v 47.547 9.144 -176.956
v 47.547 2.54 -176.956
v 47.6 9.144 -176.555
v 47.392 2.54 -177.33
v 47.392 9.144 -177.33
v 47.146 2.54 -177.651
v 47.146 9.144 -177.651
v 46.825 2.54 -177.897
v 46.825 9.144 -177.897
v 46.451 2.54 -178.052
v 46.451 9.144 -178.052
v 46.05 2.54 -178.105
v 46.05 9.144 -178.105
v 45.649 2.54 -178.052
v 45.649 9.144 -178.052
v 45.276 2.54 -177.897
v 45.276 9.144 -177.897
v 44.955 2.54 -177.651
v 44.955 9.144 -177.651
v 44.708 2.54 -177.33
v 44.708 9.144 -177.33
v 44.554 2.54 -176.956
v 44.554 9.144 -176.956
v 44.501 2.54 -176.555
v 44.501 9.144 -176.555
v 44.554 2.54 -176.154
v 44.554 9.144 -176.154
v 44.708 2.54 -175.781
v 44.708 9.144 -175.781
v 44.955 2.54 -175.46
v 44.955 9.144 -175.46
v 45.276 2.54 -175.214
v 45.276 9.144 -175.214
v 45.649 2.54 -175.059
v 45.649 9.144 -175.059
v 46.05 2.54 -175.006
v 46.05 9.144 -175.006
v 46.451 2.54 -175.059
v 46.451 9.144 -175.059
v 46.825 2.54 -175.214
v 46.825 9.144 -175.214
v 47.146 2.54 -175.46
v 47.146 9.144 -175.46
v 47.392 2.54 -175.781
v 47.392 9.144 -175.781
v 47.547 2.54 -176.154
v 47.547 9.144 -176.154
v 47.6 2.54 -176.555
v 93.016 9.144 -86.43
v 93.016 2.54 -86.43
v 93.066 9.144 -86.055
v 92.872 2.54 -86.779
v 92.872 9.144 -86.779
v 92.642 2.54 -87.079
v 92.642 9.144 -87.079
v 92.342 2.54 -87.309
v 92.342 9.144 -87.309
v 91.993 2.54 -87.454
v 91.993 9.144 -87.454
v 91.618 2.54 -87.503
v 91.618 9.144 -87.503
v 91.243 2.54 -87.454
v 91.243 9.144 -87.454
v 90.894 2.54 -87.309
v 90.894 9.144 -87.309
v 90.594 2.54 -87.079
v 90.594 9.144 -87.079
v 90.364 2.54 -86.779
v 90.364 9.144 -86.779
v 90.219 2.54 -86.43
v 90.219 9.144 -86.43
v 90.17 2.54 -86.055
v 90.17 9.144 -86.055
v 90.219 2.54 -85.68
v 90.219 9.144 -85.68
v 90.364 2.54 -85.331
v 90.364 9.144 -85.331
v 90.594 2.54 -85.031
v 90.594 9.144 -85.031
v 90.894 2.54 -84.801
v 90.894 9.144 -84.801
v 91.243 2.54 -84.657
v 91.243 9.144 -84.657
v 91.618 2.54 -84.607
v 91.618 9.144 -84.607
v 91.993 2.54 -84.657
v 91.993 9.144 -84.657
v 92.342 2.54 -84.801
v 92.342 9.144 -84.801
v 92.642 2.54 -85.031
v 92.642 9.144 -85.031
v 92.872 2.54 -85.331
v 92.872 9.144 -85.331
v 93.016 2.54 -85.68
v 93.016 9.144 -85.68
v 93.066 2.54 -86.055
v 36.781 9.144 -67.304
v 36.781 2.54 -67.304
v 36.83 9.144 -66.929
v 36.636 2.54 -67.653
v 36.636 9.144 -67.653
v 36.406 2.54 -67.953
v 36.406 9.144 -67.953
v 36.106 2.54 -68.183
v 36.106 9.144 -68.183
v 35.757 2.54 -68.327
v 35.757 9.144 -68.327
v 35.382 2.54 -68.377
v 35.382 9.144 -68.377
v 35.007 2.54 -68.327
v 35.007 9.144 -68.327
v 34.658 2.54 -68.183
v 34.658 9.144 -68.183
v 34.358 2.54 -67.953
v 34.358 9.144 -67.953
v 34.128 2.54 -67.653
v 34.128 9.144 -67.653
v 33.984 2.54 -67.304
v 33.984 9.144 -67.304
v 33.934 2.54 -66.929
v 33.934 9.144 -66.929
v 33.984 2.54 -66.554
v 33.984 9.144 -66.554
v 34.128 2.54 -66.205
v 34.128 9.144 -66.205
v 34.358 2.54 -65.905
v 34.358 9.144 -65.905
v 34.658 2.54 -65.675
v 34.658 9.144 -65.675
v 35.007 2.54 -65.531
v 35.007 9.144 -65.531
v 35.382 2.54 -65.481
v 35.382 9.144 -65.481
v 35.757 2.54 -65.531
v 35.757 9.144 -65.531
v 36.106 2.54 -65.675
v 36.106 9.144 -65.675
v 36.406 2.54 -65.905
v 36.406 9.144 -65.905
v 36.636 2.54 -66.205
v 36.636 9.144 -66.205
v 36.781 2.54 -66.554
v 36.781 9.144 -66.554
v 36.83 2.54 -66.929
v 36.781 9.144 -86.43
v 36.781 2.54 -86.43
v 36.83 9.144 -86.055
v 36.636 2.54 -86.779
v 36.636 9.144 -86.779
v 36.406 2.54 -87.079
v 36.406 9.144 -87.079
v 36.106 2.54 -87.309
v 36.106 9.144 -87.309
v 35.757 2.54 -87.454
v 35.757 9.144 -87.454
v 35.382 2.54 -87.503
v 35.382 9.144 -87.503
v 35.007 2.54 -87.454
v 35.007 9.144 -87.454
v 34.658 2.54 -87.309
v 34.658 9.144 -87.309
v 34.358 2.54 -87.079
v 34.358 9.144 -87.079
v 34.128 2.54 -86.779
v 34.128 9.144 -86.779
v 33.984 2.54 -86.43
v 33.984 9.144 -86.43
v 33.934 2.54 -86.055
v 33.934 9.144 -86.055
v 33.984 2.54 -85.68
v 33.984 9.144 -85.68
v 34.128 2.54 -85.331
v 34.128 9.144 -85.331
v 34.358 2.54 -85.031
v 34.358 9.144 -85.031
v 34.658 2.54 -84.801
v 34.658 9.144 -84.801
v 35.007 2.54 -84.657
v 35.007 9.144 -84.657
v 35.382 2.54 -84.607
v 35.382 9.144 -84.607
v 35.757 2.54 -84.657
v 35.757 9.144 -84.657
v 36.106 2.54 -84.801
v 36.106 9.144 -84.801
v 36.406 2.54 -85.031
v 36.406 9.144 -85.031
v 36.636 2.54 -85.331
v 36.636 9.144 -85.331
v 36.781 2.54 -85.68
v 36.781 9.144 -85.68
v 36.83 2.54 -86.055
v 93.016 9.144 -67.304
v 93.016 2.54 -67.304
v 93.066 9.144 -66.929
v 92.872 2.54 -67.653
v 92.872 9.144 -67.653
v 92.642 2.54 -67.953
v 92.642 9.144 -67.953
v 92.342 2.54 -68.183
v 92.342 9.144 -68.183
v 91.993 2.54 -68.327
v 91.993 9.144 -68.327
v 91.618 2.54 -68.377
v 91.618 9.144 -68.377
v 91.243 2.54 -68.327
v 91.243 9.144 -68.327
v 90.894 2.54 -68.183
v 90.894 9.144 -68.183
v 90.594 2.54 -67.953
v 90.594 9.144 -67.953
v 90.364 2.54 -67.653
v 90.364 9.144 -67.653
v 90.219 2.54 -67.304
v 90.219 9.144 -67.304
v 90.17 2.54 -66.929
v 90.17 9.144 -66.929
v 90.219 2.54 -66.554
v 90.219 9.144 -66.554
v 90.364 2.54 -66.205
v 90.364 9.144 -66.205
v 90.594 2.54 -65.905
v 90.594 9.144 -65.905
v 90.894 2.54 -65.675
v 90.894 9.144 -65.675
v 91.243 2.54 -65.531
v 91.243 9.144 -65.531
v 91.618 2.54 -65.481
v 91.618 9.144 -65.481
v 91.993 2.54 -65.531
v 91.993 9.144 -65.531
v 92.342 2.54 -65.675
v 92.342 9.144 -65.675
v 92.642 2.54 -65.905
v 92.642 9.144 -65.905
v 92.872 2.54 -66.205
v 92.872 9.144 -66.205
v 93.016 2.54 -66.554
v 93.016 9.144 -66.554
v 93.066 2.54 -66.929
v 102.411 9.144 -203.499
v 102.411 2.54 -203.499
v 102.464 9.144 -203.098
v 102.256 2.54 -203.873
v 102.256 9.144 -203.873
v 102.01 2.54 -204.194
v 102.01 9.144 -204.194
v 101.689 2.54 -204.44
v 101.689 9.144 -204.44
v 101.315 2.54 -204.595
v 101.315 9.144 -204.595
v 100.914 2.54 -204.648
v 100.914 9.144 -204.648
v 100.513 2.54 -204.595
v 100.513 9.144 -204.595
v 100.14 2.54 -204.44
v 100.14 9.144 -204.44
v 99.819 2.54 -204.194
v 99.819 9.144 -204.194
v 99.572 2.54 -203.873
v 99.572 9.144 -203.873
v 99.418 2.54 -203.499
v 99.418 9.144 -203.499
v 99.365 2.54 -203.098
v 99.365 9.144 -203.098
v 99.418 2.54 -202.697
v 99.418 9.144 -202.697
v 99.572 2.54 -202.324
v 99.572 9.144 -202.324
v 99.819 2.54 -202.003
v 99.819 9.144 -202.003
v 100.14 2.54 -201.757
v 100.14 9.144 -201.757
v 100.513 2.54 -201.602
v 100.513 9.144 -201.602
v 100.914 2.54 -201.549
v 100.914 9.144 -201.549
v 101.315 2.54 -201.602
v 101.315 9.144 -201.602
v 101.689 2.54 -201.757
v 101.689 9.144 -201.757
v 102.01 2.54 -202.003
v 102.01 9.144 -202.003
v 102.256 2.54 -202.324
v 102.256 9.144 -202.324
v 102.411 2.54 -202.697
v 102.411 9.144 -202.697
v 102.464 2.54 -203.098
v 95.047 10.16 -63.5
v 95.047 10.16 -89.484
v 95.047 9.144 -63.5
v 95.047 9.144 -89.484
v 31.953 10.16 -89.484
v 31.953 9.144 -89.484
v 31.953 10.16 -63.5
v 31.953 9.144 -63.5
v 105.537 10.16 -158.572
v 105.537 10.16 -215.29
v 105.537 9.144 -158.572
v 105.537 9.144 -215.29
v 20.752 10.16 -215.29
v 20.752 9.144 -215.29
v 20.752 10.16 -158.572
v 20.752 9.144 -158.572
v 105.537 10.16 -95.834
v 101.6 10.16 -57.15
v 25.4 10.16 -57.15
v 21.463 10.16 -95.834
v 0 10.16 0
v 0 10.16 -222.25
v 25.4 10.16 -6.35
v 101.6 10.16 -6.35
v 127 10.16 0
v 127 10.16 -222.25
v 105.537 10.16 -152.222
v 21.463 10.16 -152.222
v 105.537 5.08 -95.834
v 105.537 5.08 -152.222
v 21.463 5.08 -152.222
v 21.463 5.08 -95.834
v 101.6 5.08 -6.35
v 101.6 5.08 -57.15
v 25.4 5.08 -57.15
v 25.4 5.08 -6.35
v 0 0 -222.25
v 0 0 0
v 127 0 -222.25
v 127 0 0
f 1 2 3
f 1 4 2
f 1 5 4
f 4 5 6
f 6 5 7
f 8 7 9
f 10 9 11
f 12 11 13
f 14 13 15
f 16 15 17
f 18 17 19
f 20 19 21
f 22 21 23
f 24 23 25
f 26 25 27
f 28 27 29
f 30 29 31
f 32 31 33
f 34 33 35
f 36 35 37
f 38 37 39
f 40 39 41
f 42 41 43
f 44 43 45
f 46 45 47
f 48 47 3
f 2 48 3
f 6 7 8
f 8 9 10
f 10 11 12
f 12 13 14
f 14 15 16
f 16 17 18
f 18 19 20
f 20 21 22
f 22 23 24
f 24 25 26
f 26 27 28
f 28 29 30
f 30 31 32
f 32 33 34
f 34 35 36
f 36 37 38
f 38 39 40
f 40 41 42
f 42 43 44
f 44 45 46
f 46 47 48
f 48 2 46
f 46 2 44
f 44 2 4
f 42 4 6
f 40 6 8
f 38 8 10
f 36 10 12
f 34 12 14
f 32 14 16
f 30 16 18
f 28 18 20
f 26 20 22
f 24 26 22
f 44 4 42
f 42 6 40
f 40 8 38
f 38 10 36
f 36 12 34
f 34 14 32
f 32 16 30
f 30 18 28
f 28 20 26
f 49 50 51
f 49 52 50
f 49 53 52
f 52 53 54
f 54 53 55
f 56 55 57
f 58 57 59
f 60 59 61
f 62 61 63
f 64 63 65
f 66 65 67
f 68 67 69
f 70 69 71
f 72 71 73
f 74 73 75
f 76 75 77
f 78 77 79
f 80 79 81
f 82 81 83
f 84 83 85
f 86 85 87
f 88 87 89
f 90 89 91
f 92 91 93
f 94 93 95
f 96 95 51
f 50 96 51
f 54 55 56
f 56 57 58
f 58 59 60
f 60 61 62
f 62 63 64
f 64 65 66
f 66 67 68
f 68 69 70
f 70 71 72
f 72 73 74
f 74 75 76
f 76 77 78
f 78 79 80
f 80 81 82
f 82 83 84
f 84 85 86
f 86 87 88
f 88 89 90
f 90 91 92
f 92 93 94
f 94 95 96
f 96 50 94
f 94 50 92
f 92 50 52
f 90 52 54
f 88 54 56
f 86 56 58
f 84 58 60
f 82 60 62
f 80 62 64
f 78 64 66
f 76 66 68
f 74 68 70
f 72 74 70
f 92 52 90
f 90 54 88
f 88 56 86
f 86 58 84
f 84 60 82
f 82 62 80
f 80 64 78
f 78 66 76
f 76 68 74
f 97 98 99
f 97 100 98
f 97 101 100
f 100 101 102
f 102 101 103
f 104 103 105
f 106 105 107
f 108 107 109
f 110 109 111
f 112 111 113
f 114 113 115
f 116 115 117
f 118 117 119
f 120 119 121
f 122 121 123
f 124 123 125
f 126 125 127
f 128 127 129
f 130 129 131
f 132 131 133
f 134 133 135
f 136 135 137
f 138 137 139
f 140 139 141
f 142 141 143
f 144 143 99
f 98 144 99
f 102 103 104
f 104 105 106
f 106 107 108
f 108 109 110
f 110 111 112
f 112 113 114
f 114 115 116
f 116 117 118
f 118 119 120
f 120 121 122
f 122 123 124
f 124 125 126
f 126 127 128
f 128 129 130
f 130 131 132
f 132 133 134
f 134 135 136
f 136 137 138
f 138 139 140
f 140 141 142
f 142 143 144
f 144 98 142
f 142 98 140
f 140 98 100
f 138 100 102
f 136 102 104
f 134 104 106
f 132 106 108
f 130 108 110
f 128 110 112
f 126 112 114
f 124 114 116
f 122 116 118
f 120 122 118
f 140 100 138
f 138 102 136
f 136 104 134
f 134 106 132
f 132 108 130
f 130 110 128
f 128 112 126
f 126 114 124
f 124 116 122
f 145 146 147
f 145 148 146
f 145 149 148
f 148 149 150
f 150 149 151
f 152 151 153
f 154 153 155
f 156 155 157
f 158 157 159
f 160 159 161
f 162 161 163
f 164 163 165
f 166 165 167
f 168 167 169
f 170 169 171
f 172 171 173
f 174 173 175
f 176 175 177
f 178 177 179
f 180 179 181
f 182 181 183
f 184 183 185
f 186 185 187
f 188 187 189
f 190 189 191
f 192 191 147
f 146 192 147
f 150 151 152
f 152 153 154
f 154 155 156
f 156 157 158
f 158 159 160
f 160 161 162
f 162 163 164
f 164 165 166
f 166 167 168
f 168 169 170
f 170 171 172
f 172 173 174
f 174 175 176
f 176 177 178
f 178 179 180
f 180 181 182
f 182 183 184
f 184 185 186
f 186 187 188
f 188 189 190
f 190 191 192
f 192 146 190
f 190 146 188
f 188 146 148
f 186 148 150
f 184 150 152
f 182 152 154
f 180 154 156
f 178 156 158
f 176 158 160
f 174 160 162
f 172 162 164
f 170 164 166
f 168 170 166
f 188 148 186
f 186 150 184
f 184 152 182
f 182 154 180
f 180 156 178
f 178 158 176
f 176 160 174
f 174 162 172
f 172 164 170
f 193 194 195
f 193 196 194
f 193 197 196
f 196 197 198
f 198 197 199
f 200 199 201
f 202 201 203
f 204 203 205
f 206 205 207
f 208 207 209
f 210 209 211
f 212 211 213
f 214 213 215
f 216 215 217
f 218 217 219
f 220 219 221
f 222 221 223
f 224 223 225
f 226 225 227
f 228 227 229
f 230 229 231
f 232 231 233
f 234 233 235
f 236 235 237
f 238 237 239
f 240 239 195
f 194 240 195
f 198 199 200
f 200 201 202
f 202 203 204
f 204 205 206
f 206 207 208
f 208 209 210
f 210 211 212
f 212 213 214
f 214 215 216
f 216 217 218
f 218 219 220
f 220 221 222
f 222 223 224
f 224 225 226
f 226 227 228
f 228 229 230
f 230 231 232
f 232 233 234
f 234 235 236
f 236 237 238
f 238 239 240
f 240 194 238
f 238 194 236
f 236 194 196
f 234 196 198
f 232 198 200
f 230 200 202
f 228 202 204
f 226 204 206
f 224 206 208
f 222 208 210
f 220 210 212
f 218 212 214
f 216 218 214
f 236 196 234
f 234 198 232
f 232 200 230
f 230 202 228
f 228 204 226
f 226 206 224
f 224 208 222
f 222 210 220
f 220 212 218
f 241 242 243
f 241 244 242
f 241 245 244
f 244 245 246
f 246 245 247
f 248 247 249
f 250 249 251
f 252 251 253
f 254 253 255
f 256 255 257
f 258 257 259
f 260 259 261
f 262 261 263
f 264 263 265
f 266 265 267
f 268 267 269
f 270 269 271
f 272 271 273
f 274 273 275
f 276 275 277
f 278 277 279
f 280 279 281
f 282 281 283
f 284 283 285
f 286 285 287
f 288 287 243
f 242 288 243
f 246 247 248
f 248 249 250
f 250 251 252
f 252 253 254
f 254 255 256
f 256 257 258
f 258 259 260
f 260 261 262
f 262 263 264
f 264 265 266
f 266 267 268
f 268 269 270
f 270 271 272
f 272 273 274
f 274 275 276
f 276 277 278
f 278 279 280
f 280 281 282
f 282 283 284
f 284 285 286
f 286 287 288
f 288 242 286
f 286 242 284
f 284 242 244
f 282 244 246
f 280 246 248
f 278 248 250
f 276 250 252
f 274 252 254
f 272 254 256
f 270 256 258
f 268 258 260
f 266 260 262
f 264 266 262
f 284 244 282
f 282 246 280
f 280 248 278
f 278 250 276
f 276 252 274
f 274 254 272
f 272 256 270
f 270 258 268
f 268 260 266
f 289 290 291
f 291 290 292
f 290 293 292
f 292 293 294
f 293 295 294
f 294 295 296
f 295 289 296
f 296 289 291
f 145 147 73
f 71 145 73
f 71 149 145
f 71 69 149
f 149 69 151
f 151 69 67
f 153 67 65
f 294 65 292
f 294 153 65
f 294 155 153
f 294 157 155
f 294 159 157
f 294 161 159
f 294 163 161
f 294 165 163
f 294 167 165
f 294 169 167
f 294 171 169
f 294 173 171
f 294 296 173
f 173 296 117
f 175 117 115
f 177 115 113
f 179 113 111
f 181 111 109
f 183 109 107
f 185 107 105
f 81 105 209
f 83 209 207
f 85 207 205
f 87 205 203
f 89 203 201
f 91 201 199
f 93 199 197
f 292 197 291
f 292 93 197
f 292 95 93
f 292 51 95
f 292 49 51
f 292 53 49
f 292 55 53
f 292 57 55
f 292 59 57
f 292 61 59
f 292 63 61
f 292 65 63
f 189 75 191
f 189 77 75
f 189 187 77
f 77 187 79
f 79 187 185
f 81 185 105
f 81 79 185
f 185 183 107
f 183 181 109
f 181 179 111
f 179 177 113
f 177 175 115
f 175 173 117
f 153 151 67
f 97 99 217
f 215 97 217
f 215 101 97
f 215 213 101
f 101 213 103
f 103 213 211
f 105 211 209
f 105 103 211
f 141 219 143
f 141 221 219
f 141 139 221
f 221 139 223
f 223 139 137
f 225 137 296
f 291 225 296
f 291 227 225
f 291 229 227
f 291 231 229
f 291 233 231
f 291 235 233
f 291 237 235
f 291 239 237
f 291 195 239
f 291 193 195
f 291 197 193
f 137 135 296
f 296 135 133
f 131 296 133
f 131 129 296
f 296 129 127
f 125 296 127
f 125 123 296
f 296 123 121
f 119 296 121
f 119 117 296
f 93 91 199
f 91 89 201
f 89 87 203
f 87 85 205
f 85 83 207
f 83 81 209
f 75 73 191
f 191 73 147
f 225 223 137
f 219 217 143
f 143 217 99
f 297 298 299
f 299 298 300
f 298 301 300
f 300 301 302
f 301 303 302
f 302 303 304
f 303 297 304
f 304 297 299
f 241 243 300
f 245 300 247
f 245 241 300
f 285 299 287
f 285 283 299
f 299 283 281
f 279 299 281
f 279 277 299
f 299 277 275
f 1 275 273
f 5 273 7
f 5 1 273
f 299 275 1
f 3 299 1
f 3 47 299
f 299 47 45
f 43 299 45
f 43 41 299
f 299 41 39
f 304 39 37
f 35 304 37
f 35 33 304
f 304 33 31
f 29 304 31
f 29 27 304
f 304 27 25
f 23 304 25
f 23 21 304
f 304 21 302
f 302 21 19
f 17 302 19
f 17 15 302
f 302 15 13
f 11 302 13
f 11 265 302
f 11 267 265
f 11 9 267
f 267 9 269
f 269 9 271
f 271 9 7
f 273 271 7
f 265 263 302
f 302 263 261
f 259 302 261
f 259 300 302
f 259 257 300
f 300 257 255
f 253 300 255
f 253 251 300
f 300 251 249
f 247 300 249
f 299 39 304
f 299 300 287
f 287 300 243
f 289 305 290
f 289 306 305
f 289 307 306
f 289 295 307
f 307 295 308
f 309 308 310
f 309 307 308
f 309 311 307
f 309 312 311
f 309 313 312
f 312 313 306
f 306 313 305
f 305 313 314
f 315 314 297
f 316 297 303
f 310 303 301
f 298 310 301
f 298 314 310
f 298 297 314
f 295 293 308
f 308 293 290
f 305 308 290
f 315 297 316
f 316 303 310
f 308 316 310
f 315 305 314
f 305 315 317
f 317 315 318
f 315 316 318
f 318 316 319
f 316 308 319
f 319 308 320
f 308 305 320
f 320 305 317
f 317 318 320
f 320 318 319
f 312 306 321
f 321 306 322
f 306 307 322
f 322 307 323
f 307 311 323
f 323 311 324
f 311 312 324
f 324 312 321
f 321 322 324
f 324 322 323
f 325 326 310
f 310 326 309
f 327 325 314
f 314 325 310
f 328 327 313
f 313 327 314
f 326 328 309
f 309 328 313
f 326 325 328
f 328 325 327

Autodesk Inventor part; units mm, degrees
ref_plane "YZ Plane" through (0, 0, 0) normal (1, 0, 0) x (0, 1, 0)
ref_plane "XZ Plane" through (0, 0, 0) normal (0, 1, 0) x (-1, 0, 0)
ref_plane "XY Plane" through (0, 0, 0) normal (0, 0, 1) x (1, 0, 0)
sketch "Sketch1" plane through (0, 0, 0) normal (0, 1, 0) x (-1, 0, 0)
  line L0 (0, 0) -> (-127, 0)
  line L1 (-127, 0) -> (-127, -222.25)
  line L2 (-127, -222.25) -> (0, -222.25)
  line L3 (0, -222.25) -> (0, 0)
  line L4 (0, 0) -> (-25.4, 0)
  line L5 (-127, 0) -> (-101.6, 0)
  line L6 (-25.4, 0) -> (-25.4, -6.35)
  line L7 (-101.6, 0) -> (-101.6, -6.35)
  line L8 (-25.4, -6.35) -> (-101.6, -6.35)
  line L9 (-101.6, -6.35) -> (-101.6, -57.15)
  line L10 (-101.6, -57.15) -> (-25.4, -57.15)
  line L11 (-25.4, -57.15) -> (-25.4, -6.35)
  dimension "d0" = 222.25
  dimension "d1" = 127
  dimension "d2" = 25.4
  dimension "d3" = 25.4
  dimension "d4" = 6.35
  dimension "d5" = 6.35
  dimension "d6" = 50.8
extrude "Extrusion1" add sketch "Sketch1" along normal blind 10.16
sketch "Sketch3" plane through (0, 10.16, 0) normal (0, 1, 0) x (1, 0, 0)
  line L0 (0, 0) -> (25.4, 0)
  line L1 (0, 0) -> (127, 0) projected
  line L2 (25.4, 0) -> (25.4, 6.35)
  line L3 (127, 0) -> (101.6, 0)
  line L4 (101.6, 0) -> (101.6, 6.35)
  line L5 (25.4, 6.35) -> (101.6, 6.35)
  line L6 (101.6, 6.35) -> (101.6, 57.15)
  line L7 (101.6, 57.15) -> (25.4, 57.15)
  line L8 (25.4, 57.15) -> (25.4, 6.35)
  line L9 (0, 222.25) -> (0, 0) projected
  line L10 (0, 57.15) -> (31.9532, 57.15)
  line L11 (127, 57.15) -> (95.0468, 57.15)
  line L12 (31.9532, 57.15) -> (31.9532, 63.5)
  line L13 (95.0468, 57.15) -> (95.0468, 63.5)
  line L14 (31.9532, 63.5) -> (95.0468, 63.5)
  line L15 (95.0468, 63.5) -> (95.0468, 89.4842)
  line L16 (95.0468, 89.4842) -> (31.9532, 89.4842)
  line L17 (31.9532, 89.4842) -> (31.9532, 63.5)
  line L18 (31.9532, 63.5) -> (31.9532, 66.929)
  line L19 (31.9532, 66.929) -> (35.3822, 66.929)
  line L20 (31.9532, 89.4842) -> (31.9532, 86.0552)
  line L21 (31.9532, 86.0552) -> (35.3822, 86.0552)
  line L22 (95.0468, 63.5) -> (95.0468, 66.929)
  line L23 (95.0468, 66.929) -> (91.6178, 66.929)
  line L24 (95.0468, 89.4842) -> (95.0468, 86.0552)
  line L25 (95.0468, 86.0552) -> (91.6178, 86.0552)
  circle A0 centre (91.6178, 66.929) radius 1.4478
  circle A1 centre (91.6178, 86.0552) radius 1.4478
  circle A2 centre (35.3822, 66.929) radius 1.4478
  circle A3 centre (35.3822, 86.0552) radius 1.4478
  line L26 (0, 89.4842) -> (21.463, 89.4842)
  line L27 (127, 0) -> (127, 222.25) projected
  line L28 (127, 89.4842) -> (105.537, 89.4842)
  line L29 (21.463, 89.4842) -> (21.463, 95.8342)
  line L30 (105.537, 89.4842) -> (105.537, 95.8342)
  line L31 (21.463, 95.8342) -> (105.537, 95.8342)
  line L32 (105.537, 95.8342) -> (105.537, 152.2222)
  line L33 (105.537, 152.2222) -> (21.463, 152.2222)
  line L34 (21.463, 152.2222) -> (21.463, 95.8342)
  line L35 (0, 152.2222) -> (20.7518, 152.2222)
  line L36 (127, 152.2222) -> (106.2482, 152.2222)
  line L37 (106.2482, 152.2222) -> (106.2482, 158.5722)
  line L38 (20.7518, 152.2222) -> (20.7518, 158.5722)
  line L39 (20.7518, 158.5722) -> (105.537, 158.5722)
  line L40 (105.537, 158.5722) -> (105.537, 215.2904)
  line L41 (105.537, 215.2904) -> (20.7518, 215.2904)
  line L42 (20.7518, 215.2904) -> (20.7518, 158.5722)
  line L43 (20.7518, 158.5722) -> (20.7518, 176.5554)
  line L44 (20.7518, 176.5554) -> (46.0502, 176.5554)
  line L45 (105.537, 215.2904) -> (105.537, 203.0984)
  line L46 (105.537, 203.0984) -> (100.9142, 203.0984)
  circle A4 centre (46.0502, 176.5554) radius 1.5494
  circle A5 centre (100.9142, 203.0984) radius 1.5494
  dimension "d15" = 25.4
  dimension "d16" = 6.35
  dimension "d17" = 25.4
  dimension "d18" = 6.35
  dimension "d19" = 50.8
  dimension "d20" = 31.9532
  dimension "d21" = 31.9532
  dimension "d22" = 6.35
  dimension "d23" = 25.9842
  dimension "d24" = 3.429
  dimension "d25" = 3.429
  dimension "d26" = 3.429
  dimension "d27" = 3.429
  dimension "d28" = 2.8956
  dimension "d29" = 2.8956
  dimension "d30" = 2.8956
  dimension "d31" = 2.8956
  dimension "d32" = 21.463
  dimension "d33" = 21.463
  dimension "d34" = 6.35
  dimension "d35" = 6.35
  dimension "d36" = 56.388
  dimension "d37" = 20.7518
  dimension "d38" = 20.7518
  dimension "d39" = 6.35
  dimension "d40" = 56.7182
  dimension "d41" = 17.9832
  dimension "d42" = 25.2984
  dimension "d43" = 12.192
  dimension "d44" = 4.6228
  dimension "d45" = 3.0988
  dimension "d46" = 3.0988
sketch "Sketch4" plane through (0, 10.16, 0) normal (0, 1, 0) x (1, 0, 0)
  circle A0 centre (91.6178, 66.929) radius 1.4478
  circle A1 centre (91.6178, 86.0552) radius 1.4478
  circle A2 centre (35.3822, 66.929) radius 1.4478
  circle A3 centre (35.3822, 86.0552) radius 1.4478
  circle A4 centre (46.0502, 176.5554) radius 1.5494
  circle A5 centre (100.9142, 203.0984) radius 1.5494
  point P0 (0, 0)
  dimension "d47" = 2.8956
  dimension "d48" = 2.8956
  dimension "d49" = 2.8956
  dimension "d50" = 2.8956
  dimension "d51" = 3.0988
  dimension "d52" = 3.0988
extrude "Extrusion2" cut sketch "Sketch3" against normal blind 5.08 contours L8 L7 L6 L5 | L34 L33 L32 L31
sketch "Sketch5" plane through (0, 10.16, 0) normal (0, 1, 0) x (1, 0, 0)
  line L0 (0, 0) -> (25.4, 0)
  line L1 (0, 0) -> (127, 0)
  line L2 (25.4, 0) -> (25.4, 6.35)
  line L3 (127, 0) -> (101.6, 0)
  line L4 (101.6, 0) -> (101.6, 6.35)
  line L5 (25.4, 6.35) -> (101.6, 6.35)
  line L6 (101.6, 6.35) -> (101.6, 57.15)
  line L7 (101.6, 57.15) -> (25.4, 57.15)
  line L8 (25.4, 57.15) -> (25.4, 6.35)
  line L9 (0, 222.25) -> (0, 0)
  line L10 (0, 57.15) -> (31.9532, 57.15)
  line L11 (127, 57.15) -> (95.0468, 57.15)
  line L12 (31.9532, 57.15) -> (31.9532, 63.5)
  line L13 (95.0468, 57.15) -> (95.0468, 63.5)
  line L14 (31.9532, 63.5) -> (95.0468, 63.5)
  line L15 (95.0468, 63.5) -> (95.0468, 89.4842)
  line L16 (95.0468, 89.4842) -> (31.9532, 89.4842)
  line L17 (31.9532, 89.4842) -> (31.9532, 63.5)
  line L18 (31.9532, 63.5) -> (31.9532, 66.929)
  line L19 (31.9532, 66.929) -> (35.3822, 66.929)
  line L20 (31.9532, 89.4842) -> (31.9532, 86.0552)
  line L21 (31.9532, 86.0552) -> (35.3822, 86.0552)
  line L22 (95.0468, 63.5) -> (95.0468, 66.929)
  line L23 (95.0468, 66.929) -> (91.6178, 66.929)
  line L24 (95.0468, 89.4842) -> (95.0468, 86.0552)
  line L25 (95.0468, 86.0552) -> (91.6178, 86.0552)
  circle A0 centre (91.6178, 66.929) radius 1.4478
  circle A1 centre (91.6178, 86.0552) radius 1.4478
  circle A2 centre (35.3822, 66.929) radius 1.4478
  circle A3 centre (35.3822, 86.0552) radius 1.4478
  line L26 (0, 89.4842) -> (21.463, 89.4842)
  line L27 (127, 0) -> (127, 222.25)
  line L28 (127, 89.4842) -> (105.537, 89.4842)
  line L29 (21.463, 89.4842) -> (21.463, 95.8342)
  line L30 (105.537, 89.4842) -> (105.537, 95.8342)
  line L31 (21.463, 95.8342) -> (105.537, 95.8342)
  line L32 (105.537, 95.8342) -> (105.537, 152.2222)
  line L33 (105.537, 152.2222) -> (21.463, 152.2222)
  line L34 (21.463, 152.2222) -> (21.463, 95.8342)
  line L35 (0, 152.2222) -> (20.7518, 152.2222)
  line L36 (127, 152.2222) -> (106.2482, 152.2222)
  line L37 (106.2482, 152.2222) -> (106.2482, 158.5722)
  line L38 (20.7518, 152.2222) -> (20.7518, 158.5722)
  line L39 (20.7518, 158.5722) -> (105.537, 158.5722)
  line L40 (105.537, 158.5722) -> (105.537, 215.2904)
  line L41 (105.537, 215.2904) -> (20.7518, 215.2904)
  line L42 (20.7518, 215.2904) -> (20.7518, 158.5722)
  line L43 (20.7518, 158.5722) -> (20.7518, 176.5554)
  line L44 (20.7518, 176.5554) -> (46.0502, 176.5554)
  line L45 (105.537, 215.2904) -> (105.537, 203.0984)
  line L46 (105.537, 203.0984) -> (100.9142, 203.0984)
  circle A4 centre (46.0502, 176.5554) radius 1.5494
  circle A5 centre (100.9142, 203.0984) radius 1.5494
  dimension "d55" = 25.4
  dimension "d56" = 6.35
  dimension "d57" = 25.4
  dimension "d58" = 6.35
  dimension "d59" = 50.8
  dimension "d60" = 31.9532
  dimension "d61" = 31.9532
  dimension "d62" = 6.35
  dimension "d63" = 25.9842
  dimension "d64" = 3.429
  dimension "d65" = 3.429
  dimension "d66" = 3.429
  dimension "d67" = 3.429
  dimension "d68" = 2.8956
  dimension "d69" = 2.8956
  dimension "d70" = 2.8956
  dimension "d71" = 2.8956
  dimension "d72" = 21.463
  dimension "d73" = 21.463
  dimension "d74" = 6.35
  dimension "d75" = 6.35
  dimension "d76" = 56.388
  dimension "d77" = 20.7518
  dimension "d78" = 20.7518
  dimension "d79" = 6.35
  dimension "d80" = 56.7182
  dimension "d81" = 17.9832
  dimension "d82" = 25.2984
  dimension "d83" = 12.192
  dimension "d84" = 4.6228
  dimension "d85" = 3.0988
  dimension "d86" = 3.0988
extrude "Extrusion3" cut sketch "Sketch5" against normal blind 1.016 contours L42 L41 L40 L39 | L17 L16 L15 L14
extrude "Extrusion4" cut sketch "Sketch4" against normal blind 7.62
properties part number "base embed"
